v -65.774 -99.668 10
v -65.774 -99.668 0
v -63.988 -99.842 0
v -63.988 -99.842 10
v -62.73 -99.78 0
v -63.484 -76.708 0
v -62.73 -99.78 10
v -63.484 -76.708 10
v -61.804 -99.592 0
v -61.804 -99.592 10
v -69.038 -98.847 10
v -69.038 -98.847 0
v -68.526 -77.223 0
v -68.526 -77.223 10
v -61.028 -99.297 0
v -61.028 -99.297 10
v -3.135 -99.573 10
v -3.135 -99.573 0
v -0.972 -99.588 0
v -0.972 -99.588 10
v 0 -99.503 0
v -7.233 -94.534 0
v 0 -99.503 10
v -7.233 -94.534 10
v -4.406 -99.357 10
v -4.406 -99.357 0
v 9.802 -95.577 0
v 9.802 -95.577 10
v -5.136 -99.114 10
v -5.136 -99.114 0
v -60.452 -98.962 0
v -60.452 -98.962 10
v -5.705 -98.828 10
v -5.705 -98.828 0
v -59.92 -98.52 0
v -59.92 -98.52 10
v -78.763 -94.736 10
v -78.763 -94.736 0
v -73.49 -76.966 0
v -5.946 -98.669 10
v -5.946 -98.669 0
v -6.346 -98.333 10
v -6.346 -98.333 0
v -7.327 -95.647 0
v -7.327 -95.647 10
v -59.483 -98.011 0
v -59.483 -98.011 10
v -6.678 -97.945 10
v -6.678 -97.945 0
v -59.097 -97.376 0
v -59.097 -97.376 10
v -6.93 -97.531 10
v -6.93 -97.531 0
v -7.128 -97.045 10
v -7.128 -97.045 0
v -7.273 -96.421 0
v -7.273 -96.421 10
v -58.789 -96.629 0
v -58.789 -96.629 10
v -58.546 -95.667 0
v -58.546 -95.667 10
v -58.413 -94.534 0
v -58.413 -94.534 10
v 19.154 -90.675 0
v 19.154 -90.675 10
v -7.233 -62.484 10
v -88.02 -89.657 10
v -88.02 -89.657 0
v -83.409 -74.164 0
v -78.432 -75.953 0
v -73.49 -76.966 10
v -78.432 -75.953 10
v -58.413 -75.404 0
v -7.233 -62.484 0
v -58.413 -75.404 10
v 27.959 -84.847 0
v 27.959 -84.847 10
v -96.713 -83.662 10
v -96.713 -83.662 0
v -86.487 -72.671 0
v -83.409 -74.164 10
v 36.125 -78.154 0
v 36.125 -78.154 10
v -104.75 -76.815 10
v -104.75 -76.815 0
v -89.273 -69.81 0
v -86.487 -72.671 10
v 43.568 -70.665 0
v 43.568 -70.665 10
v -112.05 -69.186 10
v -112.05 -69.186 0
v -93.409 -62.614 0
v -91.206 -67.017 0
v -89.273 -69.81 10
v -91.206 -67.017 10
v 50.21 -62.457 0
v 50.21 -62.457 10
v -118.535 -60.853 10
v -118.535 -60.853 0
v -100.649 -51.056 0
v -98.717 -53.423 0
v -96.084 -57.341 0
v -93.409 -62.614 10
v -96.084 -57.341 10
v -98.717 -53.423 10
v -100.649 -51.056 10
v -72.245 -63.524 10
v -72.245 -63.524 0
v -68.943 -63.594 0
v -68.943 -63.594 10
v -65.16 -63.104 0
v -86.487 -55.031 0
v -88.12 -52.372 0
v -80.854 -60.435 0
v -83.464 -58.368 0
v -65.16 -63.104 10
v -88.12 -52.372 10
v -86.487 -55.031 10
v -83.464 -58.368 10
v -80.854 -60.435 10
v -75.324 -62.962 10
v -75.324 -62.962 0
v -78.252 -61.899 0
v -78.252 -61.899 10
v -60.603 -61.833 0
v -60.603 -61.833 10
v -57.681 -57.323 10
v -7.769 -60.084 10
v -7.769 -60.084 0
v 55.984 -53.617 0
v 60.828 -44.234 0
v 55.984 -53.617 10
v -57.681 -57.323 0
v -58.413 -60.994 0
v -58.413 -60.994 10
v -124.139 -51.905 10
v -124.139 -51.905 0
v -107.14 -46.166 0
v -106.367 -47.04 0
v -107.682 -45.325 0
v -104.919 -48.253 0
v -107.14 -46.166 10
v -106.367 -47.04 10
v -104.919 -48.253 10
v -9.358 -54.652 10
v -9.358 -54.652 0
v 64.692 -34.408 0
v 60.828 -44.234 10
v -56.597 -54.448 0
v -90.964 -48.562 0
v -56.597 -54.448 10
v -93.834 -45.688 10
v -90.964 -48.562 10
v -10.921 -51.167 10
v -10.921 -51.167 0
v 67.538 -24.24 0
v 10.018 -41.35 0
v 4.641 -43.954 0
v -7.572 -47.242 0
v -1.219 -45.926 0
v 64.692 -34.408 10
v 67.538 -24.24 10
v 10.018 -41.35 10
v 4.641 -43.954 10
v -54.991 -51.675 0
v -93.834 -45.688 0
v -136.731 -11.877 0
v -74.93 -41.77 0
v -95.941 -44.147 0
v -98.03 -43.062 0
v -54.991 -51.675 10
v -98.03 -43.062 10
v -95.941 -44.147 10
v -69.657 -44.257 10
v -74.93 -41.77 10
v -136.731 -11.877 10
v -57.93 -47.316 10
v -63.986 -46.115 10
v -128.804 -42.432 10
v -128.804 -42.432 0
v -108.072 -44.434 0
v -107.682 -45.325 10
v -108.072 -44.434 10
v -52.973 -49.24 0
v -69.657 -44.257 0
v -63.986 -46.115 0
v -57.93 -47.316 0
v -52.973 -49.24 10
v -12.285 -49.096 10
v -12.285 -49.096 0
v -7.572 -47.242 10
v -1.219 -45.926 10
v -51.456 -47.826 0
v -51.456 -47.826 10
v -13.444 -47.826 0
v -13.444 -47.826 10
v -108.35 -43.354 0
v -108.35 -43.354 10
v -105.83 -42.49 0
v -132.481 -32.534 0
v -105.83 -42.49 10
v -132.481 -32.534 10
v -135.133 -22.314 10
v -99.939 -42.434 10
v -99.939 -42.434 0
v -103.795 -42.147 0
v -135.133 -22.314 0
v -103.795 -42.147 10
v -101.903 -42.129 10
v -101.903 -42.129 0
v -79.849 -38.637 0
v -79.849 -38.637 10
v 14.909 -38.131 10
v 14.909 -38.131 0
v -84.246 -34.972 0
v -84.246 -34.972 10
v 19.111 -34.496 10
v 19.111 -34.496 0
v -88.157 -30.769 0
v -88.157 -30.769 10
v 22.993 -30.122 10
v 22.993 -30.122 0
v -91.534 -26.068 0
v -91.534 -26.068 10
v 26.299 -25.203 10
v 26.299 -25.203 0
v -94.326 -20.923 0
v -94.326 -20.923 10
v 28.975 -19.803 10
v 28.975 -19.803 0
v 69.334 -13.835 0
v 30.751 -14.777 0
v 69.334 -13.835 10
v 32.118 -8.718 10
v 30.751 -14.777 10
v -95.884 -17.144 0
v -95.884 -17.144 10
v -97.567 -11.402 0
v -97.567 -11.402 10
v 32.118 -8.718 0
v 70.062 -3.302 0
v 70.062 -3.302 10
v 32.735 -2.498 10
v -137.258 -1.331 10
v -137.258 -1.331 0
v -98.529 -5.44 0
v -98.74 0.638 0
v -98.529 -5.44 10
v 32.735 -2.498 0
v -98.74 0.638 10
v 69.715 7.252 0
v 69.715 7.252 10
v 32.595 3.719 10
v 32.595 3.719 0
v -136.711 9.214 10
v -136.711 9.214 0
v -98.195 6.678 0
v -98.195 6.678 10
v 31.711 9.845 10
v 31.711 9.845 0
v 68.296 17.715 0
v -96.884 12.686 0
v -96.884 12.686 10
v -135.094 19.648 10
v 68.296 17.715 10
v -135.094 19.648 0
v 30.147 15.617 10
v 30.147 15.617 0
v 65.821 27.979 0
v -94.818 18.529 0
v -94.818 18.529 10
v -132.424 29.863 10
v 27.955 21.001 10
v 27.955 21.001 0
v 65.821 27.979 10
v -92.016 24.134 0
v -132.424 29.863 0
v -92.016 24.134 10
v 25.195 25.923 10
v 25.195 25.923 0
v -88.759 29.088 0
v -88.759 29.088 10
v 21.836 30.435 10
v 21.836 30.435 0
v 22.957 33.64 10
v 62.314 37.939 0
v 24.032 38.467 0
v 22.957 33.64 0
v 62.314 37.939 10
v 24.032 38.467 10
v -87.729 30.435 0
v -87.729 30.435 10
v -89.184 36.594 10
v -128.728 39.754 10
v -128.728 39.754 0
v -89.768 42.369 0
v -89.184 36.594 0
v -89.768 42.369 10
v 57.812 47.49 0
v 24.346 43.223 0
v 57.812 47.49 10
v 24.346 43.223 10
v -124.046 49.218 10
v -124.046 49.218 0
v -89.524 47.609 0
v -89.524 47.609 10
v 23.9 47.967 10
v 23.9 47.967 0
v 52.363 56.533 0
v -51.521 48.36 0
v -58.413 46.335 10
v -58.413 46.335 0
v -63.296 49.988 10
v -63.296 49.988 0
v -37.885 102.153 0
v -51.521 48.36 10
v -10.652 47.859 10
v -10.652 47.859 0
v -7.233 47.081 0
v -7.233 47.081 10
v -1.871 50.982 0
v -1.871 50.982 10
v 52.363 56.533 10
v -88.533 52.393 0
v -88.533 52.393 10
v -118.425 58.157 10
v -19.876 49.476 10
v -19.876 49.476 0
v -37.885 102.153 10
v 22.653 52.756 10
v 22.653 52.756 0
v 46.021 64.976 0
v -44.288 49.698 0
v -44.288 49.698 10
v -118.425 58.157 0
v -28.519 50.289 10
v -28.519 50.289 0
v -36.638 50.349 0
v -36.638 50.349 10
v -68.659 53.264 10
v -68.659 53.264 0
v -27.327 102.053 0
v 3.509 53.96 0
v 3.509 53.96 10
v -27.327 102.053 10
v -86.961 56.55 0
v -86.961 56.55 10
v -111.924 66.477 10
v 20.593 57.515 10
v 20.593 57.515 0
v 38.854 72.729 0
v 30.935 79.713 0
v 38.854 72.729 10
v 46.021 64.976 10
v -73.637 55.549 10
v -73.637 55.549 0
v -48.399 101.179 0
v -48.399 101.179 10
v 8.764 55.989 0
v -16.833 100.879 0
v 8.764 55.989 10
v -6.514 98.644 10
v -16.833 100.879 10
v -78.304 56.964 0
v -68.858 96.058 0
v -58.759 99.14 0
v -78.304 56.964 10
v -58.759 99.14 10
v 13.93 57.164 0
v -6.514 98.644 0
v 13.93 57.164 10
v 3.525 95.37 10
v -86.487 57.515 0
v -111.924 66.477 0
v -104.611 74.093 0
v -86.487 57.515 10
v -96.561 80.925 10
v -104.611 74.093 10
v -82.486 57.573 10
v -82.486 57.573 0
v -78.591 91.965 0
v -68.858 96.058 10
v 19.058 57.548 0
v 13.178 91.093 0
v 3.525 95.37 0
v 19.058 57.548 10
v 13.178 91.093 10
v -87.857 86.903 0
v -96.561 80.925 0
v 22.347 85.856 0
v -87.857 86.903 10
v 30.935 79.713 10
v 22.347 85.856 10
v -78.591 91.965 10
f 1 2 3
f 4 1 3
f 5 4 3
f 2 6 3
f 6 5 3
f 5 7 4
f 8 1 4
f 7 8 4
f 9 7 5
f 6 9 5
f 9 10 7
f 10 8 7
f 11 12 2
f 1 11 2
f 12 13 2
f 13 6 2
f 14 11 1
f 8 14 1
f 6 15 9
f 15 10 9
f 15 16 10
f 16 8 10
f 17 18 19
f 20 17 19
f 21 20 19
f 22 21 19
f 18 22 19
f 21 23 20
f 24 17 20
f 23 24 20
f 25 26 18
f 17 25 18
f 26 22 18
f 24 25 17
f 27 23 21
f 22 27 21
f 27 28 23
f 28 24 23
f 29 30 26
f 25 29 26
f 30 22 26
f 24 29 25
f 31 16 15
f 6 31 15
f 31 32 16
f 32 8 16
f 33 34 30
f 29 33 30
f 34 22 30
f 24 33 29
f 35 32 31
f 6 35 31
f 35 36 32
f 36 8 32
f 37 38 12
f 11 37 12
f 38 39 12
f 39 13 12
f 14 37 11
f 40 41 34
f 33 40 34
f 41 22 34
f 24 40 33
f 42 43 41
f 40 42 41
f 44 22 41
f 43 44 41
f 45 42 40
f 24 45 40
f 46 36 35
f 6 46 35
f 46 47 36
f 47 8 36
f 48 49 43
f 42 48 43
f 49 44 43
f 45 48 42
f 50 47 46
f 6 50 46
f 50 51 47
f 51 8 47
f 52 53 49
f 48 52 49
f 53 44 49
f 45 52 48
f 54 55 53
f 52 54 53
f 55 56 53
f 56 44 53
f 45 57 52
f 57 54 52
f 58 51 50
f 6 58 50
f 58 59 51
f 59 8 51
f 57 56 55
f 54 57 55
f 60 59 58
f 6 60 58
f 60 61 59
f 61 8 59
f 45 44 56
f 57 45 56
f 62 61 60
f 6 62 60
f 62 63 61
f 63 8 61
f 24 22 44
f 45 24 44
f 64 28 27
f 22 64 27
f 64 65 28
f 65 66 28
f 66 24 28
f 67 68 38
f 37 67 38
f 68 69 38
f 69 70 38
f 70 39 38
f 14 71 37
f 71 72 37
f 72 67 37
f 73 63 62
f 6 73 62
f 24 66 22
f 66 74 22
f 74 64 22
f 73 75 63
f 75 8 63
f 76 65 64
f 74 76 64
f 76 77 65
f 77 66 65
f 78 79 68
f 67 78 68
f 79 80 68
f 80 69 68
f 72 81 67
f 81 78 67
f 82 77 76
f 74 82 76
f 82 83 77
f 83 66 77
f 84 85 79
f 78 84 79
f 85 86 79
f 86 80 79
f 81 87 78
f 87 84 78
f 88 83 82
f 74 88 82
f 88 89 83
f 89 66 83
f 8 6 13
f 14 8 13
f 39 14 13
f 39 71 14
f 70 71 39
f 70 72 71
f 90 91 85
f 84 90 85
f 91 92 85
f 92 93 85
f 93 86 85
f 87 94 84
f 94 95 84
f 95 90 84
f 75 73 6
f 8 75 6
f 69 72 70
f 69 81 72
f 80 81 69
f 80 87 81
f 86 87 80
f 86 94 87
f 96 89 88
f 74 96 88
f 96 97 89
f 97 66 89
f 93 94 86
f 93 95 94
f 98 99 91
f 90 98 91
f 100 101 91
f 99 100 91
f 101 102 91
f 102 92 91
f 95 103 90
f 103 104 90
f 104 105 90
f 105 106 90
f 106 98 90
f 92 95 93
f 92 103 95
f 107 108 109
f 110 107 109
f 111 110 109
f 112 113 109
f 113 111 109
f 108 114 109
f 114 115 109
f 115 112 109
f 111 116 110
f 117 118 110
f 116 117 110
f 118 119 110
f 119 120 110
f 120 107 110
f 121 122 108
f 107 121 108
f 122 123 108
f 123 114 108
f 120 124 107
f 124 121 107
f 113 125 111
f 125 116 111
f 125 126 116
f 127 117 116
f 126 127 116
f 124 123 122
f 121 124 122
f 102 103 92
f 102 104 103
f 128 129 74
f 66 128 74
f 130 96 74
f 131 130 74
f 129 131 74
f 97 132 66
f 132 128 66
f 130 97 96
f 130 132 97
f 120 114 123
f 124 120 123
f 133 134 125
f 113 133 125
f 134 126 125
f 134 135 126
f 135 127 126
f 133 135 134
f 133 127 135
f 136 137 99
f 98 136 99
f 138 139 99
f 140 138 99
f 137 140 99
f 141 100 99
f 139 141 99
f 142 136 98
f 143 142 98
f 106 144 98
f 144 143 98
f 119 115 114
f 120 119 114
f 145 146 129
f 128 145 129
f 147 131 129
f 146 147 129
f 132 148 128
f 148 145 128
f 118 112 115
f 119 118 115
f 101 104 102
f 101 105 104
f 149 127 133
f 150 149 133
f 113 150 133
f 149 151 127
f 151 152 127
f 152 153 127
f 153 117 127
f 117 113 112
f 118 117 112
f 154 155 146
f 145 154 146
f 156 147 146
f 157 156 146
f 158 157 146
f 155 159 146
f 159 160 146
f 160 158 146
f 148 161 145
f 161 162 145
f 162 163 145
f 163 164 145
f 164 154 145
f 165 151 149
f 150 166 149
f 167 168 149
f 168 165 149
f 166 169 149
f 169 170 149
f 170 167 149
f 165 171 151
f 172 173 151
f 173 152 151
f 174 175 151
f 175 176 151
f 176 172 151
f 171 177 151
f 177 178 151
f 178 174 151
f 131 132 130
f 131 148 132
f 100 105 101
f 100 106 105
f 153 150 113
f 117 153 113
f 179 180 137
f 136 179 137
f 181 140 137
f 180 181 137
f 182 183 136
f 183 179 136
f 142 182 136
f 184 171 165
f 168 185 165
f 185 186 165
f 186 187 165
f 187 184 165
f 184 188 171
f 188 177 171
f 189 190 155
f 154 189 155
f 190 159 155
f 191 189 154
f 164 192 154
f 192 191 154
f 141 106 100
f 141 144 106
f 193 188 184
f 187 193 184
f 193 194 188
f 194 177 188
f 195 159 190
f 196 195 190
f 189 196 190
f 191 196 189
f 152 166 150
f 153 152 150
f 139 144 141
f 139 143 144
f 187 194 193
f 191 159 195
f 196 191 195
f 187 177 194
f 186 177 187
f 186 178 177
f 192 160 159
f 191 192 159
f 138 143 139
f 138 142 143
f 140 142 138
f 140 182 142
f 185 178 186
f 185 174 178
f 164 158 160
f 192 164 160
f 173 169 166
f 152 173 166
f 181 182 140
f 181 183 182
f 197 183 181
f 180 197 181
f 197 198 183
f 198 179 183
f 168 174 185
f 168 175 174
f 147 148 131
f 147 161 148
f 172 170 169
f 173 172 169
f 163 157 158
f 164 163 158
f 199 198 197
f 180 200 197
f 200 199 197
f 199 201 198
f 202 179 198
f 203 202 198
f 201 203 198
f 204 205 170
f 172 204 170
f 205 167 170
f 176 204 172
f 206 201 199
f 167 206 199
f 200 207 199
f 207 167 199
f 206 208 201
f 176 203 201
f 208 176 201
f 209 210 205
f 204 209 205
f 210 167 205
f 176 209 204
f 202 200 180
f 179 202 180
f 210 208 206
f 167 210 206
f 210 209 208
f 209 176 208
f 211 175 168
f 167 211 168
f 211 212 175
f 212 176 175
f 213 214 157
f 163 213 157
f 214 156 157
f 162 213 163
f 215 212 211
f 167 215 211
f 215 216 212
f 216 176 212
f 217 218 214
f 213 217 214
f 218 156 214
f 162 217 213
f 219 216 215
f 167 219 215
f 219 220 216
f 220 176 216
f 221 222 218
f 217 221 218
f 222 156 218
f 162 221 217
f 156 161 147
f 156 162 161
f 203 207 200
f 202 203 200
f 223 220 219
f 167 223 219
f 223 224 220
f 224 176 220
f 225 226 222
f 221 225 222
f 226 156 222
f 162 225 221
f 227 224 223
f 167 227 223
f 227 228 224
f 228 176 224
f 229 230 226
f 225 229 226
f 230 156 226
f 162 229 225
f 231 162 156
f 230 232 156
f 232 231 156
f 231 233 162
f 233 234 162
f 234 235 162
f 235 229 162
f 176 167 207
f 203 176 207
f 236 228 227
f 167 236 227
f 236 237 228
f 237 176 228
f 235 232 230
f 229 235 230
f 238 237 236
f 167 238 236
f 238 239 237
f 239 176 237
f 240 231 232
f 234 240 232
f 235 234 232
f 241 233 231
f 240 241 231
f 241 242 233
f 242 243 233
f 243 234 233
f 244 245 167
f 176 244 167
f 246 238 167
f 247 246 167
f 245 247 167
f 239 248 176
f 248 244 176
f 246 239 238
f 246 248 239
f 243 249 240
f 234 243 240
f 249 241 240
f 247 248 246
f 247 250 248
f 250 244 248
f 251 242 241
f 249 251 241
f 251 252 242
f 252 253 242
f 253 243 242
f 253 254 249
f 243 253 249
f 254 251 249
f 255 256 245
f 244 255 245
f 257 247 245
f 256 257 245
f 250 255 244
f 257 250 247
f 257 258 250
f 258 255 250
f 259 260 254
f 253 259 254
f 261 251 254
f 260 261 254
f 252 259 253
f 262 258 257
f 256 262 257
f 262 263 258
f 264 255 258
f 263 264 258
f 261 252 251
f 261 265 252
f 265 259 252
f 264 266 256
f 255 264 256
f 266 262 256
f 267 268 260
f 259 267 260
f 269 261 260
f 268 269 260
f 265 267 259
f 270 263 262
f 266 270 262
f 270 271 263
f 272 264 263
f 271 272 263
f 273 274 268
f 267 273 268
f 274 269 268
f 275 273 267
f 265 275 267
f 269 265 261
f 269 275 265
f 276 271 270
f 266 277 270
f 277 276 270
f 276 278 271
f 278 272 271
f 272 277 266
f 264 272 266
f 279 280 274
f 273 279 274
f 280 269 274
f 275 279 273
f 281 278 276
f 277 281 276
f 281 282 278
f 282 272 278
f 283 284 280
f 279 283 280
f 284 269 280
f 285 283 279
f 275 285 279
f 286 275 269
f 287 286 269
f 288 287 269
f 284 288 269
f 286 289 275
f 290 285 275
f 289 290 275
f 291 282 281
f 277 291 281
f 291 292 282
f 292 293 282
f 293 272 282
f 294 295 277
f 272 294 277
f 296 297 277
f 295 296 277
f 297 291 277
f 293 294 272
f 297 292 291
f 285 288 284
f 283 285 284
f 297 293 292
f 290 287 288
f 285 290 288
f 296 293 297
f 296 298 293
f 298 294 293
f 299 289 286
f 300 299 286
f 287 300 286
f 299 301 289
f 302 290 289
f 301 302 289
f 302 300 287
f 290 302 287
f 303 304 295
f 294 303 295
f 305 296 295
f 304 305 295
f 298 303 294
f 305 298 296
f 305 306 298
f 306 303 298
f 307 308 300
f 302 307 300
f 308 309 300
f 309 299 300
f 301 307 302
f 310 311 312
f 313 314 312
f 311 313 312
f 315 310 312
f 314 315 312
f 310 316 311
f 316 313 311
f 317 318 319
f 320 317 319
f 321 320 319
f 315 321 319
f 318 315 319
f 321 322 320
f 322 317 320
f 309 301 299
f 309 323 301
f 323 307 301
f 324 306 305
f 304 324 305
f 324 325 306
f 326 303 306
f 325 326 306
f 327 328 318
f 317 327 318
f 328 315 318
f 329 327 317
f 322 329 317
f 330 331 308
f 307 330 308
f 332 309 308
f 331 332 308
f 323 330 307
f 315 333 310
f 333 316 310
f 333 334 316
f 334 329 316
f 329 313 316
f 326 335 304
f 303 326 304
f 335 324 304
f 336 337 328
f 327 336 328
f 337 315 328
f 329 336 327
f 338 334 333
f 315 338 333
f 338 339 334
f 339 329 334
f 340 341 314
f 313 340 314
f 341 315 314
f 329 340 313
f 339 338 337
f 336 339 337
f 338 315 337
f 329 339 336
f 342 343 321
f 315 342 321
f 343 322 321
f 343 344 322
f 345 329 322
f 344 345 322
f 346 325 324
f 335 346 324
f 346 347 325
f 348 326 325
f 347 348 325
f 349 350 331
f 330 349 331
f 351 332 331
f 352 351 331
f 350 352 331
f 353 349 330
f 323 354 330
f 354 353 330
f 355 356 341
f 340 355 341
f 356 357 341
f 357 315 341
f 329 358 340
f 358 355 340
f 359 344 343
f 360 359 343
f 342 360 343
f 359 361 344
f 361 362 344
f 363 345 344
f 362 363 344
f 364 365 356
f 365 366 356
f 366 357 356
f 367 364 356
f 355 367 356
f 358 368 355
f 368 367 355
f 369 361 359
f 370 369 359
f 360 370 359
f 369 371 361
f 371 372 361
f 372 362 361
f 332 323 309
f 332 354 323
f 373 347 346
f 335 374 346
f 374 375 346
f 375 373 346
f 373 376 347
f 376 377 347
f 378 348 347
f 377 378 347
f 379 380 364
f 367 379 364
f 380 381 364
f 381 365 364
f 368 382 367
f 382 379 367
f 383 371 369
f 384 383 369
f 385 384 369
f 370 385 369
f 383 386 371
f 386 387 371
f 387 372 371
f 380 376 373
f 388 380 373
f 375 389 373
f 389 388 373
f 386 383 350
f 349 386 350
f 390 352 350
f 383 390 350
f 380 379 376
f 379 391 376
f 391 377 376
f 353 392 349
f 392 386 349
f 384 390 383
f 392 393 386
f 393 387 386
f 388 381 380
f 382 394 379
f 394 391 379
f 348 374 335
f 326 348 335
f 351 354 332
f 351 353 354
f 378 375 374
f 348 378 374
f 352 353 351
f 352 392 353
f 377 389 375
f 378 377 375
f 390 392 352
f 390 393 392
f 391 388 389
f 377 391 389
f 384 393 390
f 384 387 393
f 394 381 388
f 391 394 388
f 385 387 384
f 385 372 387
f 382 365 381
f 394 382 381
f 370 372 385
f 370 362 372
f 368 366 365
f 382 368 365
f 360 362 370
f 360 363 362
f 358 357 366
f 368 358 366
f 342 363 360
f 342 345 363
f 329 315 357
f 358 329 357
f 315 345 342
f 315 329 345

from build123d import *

# Parameters (mm, degrees)
RESSALTO_EXTRUS_O1_DEPTH = 10


with BuildPart() as part:
    # Esboço1 → Ressalto-extrusão1 (new body)
    with BuildSketch(Plane.XY):
        with BuildLine():
            Line((-7.232646643, -62.48429229), (-7.232646643, -94.533889528))
            add(Edge.make_bspline(
                [(0, -99.502819333), (-8.159285206, -100.402600429), (-7.232646643, -94.533889528)],
                knots=[0, 0, 0, 1, 1, 1], degree=2))
            ThreePointArc((0, -99.502819333), (-32.604573624, 102.237231854), (-69.037862067, -98.84663614))
            add(Edge.make_bspline(
                [(-69.037862067, -98.84663614), (-58.877940065, -102.146119369), (-58.412623628, -94.533889528)],
                knots=[0, 0, 0, 1, 1, 1], degree=2))
            Line((-58.412623628, -94.533889528), (-58.412623628, -75.403509781))
            add(Edge.make_bspline(
                [(-86.487077022, -72.670598389), (-72.514014981, -80.122898144), (-58.412623628, -75.403509781)],
                knots=[0, 0, 0, 1, 1, 1], degree=2))
            add(Edge.make_bspline(
                [(-100.648526965, -51.05575374), (-92.264568181, -60.681780492), (-93.93848024, -66.150620573), (-86.487077022, -72.670598389)],
                knots=[0, 0, 0, 0, 1, 1, 1, 1], degree=3))
            add(Edge.make_bspline(
                [(-108.350368162, -43.353912543), (-107.730240194, -46.867971027), (-104.99114076, -48.264073443), (-100.648526965, -51.05575374)],
                knots=[0, 0, 0, 0, 1, 1, 1, 1], degree=3))
            add(Edge.make_bspline(
                [(-86.487077022, -55.030897583), (-96.23915973, -38.074667842), (-108.350368162, -43.353912543)],
                knots=[0, 0, 0, 1, 1, 1], degree=2))
            add(Edge.make_bspline(
                [(-58.412623628, -60.993613349), (-76.239781836, -68.383433735), (-86.487077022, -55.030897583)],
                knots=[0, 0, 0, 1, 1, 1], degree=2))
            add(Edge.make_bspline(
                [(-51.456121902, -47.825949367), (-57.481841957, -52.926838867), (-58.412623628, -60.993613349)],
                knots=[0, 0, 0, 1, 1, 1], degree=2))
            add(Edge.make_bspline(
                [(-87.729309473, 30.434695052), (-112.261906541, -0.619225286), (-93.998220032, -46.894370576), (-51.456121902, -47.825949367)],
                knots=[0, 0, 0, 0, 1, 1, 1, 1], degree=3))
            add(Edge.make_bspline(
                [(-86.487077022, 57.515362486), (-92.384526984, 46.030854666), (-87.729309473, 30.434695052)],
                knots=[0, 0, 0, 1, 1, 1], degree=2))
            add(Edge.make_bspline(
                [(-58.412623628, 46.335270426), (-73.757926553, 58.757230824), (-86.487077022, 57.515362486)],
                knots=[0, 0, 0, 1, 1, 1], degree=2))
            add(Edge.make_bspline(
                [(-58.412623628, 46.335270426), (-36.364743942, 54.098608343), (-7.232646643, 47.080609896)],
                knots=[0, 0, 0, 1, 1, 1], degree=2))
            add(Edge.make_bspline(
                [(-7.232646643, 47.080609896), (6.307693164, 58.136478446), (20.593360262, 57.515362486)],
                knots=[0, 0, 0, 1, 1, 1], degree=2))
            add(Edge.make_bspline(
                [(20.593360262, 57.515362486), (27.4214118, 44.39924277), (21.835592713, 30.434695052)],
                knots=[0, 0, 0, 1, 1, 1], degree=2))
            add(Edge.make_bspline(
                [(21.835592713, 30.434695052), (43.574260816, 4.969398131), (33.44944429, -45.341538602), (-13.443808898, -47.825949367)],
                knots=[0, 0, 0, 0, 1, 1, 1, 1], degree=3))
            add(Edge.make_bspline(
                [(-13.443808898, -47.825949367), (-10.137665295, -50.925458995), (-8.474815726, -56.583989145), (-7.232646643, -62.48429229)],
                knots=[0, 0, 0, 0, 1, 1, 1, 1], degree=3))
        make_face()
    extrude(amount=RESSALTO_EXTRUS_O1_DEPTH)


solid = part.part
